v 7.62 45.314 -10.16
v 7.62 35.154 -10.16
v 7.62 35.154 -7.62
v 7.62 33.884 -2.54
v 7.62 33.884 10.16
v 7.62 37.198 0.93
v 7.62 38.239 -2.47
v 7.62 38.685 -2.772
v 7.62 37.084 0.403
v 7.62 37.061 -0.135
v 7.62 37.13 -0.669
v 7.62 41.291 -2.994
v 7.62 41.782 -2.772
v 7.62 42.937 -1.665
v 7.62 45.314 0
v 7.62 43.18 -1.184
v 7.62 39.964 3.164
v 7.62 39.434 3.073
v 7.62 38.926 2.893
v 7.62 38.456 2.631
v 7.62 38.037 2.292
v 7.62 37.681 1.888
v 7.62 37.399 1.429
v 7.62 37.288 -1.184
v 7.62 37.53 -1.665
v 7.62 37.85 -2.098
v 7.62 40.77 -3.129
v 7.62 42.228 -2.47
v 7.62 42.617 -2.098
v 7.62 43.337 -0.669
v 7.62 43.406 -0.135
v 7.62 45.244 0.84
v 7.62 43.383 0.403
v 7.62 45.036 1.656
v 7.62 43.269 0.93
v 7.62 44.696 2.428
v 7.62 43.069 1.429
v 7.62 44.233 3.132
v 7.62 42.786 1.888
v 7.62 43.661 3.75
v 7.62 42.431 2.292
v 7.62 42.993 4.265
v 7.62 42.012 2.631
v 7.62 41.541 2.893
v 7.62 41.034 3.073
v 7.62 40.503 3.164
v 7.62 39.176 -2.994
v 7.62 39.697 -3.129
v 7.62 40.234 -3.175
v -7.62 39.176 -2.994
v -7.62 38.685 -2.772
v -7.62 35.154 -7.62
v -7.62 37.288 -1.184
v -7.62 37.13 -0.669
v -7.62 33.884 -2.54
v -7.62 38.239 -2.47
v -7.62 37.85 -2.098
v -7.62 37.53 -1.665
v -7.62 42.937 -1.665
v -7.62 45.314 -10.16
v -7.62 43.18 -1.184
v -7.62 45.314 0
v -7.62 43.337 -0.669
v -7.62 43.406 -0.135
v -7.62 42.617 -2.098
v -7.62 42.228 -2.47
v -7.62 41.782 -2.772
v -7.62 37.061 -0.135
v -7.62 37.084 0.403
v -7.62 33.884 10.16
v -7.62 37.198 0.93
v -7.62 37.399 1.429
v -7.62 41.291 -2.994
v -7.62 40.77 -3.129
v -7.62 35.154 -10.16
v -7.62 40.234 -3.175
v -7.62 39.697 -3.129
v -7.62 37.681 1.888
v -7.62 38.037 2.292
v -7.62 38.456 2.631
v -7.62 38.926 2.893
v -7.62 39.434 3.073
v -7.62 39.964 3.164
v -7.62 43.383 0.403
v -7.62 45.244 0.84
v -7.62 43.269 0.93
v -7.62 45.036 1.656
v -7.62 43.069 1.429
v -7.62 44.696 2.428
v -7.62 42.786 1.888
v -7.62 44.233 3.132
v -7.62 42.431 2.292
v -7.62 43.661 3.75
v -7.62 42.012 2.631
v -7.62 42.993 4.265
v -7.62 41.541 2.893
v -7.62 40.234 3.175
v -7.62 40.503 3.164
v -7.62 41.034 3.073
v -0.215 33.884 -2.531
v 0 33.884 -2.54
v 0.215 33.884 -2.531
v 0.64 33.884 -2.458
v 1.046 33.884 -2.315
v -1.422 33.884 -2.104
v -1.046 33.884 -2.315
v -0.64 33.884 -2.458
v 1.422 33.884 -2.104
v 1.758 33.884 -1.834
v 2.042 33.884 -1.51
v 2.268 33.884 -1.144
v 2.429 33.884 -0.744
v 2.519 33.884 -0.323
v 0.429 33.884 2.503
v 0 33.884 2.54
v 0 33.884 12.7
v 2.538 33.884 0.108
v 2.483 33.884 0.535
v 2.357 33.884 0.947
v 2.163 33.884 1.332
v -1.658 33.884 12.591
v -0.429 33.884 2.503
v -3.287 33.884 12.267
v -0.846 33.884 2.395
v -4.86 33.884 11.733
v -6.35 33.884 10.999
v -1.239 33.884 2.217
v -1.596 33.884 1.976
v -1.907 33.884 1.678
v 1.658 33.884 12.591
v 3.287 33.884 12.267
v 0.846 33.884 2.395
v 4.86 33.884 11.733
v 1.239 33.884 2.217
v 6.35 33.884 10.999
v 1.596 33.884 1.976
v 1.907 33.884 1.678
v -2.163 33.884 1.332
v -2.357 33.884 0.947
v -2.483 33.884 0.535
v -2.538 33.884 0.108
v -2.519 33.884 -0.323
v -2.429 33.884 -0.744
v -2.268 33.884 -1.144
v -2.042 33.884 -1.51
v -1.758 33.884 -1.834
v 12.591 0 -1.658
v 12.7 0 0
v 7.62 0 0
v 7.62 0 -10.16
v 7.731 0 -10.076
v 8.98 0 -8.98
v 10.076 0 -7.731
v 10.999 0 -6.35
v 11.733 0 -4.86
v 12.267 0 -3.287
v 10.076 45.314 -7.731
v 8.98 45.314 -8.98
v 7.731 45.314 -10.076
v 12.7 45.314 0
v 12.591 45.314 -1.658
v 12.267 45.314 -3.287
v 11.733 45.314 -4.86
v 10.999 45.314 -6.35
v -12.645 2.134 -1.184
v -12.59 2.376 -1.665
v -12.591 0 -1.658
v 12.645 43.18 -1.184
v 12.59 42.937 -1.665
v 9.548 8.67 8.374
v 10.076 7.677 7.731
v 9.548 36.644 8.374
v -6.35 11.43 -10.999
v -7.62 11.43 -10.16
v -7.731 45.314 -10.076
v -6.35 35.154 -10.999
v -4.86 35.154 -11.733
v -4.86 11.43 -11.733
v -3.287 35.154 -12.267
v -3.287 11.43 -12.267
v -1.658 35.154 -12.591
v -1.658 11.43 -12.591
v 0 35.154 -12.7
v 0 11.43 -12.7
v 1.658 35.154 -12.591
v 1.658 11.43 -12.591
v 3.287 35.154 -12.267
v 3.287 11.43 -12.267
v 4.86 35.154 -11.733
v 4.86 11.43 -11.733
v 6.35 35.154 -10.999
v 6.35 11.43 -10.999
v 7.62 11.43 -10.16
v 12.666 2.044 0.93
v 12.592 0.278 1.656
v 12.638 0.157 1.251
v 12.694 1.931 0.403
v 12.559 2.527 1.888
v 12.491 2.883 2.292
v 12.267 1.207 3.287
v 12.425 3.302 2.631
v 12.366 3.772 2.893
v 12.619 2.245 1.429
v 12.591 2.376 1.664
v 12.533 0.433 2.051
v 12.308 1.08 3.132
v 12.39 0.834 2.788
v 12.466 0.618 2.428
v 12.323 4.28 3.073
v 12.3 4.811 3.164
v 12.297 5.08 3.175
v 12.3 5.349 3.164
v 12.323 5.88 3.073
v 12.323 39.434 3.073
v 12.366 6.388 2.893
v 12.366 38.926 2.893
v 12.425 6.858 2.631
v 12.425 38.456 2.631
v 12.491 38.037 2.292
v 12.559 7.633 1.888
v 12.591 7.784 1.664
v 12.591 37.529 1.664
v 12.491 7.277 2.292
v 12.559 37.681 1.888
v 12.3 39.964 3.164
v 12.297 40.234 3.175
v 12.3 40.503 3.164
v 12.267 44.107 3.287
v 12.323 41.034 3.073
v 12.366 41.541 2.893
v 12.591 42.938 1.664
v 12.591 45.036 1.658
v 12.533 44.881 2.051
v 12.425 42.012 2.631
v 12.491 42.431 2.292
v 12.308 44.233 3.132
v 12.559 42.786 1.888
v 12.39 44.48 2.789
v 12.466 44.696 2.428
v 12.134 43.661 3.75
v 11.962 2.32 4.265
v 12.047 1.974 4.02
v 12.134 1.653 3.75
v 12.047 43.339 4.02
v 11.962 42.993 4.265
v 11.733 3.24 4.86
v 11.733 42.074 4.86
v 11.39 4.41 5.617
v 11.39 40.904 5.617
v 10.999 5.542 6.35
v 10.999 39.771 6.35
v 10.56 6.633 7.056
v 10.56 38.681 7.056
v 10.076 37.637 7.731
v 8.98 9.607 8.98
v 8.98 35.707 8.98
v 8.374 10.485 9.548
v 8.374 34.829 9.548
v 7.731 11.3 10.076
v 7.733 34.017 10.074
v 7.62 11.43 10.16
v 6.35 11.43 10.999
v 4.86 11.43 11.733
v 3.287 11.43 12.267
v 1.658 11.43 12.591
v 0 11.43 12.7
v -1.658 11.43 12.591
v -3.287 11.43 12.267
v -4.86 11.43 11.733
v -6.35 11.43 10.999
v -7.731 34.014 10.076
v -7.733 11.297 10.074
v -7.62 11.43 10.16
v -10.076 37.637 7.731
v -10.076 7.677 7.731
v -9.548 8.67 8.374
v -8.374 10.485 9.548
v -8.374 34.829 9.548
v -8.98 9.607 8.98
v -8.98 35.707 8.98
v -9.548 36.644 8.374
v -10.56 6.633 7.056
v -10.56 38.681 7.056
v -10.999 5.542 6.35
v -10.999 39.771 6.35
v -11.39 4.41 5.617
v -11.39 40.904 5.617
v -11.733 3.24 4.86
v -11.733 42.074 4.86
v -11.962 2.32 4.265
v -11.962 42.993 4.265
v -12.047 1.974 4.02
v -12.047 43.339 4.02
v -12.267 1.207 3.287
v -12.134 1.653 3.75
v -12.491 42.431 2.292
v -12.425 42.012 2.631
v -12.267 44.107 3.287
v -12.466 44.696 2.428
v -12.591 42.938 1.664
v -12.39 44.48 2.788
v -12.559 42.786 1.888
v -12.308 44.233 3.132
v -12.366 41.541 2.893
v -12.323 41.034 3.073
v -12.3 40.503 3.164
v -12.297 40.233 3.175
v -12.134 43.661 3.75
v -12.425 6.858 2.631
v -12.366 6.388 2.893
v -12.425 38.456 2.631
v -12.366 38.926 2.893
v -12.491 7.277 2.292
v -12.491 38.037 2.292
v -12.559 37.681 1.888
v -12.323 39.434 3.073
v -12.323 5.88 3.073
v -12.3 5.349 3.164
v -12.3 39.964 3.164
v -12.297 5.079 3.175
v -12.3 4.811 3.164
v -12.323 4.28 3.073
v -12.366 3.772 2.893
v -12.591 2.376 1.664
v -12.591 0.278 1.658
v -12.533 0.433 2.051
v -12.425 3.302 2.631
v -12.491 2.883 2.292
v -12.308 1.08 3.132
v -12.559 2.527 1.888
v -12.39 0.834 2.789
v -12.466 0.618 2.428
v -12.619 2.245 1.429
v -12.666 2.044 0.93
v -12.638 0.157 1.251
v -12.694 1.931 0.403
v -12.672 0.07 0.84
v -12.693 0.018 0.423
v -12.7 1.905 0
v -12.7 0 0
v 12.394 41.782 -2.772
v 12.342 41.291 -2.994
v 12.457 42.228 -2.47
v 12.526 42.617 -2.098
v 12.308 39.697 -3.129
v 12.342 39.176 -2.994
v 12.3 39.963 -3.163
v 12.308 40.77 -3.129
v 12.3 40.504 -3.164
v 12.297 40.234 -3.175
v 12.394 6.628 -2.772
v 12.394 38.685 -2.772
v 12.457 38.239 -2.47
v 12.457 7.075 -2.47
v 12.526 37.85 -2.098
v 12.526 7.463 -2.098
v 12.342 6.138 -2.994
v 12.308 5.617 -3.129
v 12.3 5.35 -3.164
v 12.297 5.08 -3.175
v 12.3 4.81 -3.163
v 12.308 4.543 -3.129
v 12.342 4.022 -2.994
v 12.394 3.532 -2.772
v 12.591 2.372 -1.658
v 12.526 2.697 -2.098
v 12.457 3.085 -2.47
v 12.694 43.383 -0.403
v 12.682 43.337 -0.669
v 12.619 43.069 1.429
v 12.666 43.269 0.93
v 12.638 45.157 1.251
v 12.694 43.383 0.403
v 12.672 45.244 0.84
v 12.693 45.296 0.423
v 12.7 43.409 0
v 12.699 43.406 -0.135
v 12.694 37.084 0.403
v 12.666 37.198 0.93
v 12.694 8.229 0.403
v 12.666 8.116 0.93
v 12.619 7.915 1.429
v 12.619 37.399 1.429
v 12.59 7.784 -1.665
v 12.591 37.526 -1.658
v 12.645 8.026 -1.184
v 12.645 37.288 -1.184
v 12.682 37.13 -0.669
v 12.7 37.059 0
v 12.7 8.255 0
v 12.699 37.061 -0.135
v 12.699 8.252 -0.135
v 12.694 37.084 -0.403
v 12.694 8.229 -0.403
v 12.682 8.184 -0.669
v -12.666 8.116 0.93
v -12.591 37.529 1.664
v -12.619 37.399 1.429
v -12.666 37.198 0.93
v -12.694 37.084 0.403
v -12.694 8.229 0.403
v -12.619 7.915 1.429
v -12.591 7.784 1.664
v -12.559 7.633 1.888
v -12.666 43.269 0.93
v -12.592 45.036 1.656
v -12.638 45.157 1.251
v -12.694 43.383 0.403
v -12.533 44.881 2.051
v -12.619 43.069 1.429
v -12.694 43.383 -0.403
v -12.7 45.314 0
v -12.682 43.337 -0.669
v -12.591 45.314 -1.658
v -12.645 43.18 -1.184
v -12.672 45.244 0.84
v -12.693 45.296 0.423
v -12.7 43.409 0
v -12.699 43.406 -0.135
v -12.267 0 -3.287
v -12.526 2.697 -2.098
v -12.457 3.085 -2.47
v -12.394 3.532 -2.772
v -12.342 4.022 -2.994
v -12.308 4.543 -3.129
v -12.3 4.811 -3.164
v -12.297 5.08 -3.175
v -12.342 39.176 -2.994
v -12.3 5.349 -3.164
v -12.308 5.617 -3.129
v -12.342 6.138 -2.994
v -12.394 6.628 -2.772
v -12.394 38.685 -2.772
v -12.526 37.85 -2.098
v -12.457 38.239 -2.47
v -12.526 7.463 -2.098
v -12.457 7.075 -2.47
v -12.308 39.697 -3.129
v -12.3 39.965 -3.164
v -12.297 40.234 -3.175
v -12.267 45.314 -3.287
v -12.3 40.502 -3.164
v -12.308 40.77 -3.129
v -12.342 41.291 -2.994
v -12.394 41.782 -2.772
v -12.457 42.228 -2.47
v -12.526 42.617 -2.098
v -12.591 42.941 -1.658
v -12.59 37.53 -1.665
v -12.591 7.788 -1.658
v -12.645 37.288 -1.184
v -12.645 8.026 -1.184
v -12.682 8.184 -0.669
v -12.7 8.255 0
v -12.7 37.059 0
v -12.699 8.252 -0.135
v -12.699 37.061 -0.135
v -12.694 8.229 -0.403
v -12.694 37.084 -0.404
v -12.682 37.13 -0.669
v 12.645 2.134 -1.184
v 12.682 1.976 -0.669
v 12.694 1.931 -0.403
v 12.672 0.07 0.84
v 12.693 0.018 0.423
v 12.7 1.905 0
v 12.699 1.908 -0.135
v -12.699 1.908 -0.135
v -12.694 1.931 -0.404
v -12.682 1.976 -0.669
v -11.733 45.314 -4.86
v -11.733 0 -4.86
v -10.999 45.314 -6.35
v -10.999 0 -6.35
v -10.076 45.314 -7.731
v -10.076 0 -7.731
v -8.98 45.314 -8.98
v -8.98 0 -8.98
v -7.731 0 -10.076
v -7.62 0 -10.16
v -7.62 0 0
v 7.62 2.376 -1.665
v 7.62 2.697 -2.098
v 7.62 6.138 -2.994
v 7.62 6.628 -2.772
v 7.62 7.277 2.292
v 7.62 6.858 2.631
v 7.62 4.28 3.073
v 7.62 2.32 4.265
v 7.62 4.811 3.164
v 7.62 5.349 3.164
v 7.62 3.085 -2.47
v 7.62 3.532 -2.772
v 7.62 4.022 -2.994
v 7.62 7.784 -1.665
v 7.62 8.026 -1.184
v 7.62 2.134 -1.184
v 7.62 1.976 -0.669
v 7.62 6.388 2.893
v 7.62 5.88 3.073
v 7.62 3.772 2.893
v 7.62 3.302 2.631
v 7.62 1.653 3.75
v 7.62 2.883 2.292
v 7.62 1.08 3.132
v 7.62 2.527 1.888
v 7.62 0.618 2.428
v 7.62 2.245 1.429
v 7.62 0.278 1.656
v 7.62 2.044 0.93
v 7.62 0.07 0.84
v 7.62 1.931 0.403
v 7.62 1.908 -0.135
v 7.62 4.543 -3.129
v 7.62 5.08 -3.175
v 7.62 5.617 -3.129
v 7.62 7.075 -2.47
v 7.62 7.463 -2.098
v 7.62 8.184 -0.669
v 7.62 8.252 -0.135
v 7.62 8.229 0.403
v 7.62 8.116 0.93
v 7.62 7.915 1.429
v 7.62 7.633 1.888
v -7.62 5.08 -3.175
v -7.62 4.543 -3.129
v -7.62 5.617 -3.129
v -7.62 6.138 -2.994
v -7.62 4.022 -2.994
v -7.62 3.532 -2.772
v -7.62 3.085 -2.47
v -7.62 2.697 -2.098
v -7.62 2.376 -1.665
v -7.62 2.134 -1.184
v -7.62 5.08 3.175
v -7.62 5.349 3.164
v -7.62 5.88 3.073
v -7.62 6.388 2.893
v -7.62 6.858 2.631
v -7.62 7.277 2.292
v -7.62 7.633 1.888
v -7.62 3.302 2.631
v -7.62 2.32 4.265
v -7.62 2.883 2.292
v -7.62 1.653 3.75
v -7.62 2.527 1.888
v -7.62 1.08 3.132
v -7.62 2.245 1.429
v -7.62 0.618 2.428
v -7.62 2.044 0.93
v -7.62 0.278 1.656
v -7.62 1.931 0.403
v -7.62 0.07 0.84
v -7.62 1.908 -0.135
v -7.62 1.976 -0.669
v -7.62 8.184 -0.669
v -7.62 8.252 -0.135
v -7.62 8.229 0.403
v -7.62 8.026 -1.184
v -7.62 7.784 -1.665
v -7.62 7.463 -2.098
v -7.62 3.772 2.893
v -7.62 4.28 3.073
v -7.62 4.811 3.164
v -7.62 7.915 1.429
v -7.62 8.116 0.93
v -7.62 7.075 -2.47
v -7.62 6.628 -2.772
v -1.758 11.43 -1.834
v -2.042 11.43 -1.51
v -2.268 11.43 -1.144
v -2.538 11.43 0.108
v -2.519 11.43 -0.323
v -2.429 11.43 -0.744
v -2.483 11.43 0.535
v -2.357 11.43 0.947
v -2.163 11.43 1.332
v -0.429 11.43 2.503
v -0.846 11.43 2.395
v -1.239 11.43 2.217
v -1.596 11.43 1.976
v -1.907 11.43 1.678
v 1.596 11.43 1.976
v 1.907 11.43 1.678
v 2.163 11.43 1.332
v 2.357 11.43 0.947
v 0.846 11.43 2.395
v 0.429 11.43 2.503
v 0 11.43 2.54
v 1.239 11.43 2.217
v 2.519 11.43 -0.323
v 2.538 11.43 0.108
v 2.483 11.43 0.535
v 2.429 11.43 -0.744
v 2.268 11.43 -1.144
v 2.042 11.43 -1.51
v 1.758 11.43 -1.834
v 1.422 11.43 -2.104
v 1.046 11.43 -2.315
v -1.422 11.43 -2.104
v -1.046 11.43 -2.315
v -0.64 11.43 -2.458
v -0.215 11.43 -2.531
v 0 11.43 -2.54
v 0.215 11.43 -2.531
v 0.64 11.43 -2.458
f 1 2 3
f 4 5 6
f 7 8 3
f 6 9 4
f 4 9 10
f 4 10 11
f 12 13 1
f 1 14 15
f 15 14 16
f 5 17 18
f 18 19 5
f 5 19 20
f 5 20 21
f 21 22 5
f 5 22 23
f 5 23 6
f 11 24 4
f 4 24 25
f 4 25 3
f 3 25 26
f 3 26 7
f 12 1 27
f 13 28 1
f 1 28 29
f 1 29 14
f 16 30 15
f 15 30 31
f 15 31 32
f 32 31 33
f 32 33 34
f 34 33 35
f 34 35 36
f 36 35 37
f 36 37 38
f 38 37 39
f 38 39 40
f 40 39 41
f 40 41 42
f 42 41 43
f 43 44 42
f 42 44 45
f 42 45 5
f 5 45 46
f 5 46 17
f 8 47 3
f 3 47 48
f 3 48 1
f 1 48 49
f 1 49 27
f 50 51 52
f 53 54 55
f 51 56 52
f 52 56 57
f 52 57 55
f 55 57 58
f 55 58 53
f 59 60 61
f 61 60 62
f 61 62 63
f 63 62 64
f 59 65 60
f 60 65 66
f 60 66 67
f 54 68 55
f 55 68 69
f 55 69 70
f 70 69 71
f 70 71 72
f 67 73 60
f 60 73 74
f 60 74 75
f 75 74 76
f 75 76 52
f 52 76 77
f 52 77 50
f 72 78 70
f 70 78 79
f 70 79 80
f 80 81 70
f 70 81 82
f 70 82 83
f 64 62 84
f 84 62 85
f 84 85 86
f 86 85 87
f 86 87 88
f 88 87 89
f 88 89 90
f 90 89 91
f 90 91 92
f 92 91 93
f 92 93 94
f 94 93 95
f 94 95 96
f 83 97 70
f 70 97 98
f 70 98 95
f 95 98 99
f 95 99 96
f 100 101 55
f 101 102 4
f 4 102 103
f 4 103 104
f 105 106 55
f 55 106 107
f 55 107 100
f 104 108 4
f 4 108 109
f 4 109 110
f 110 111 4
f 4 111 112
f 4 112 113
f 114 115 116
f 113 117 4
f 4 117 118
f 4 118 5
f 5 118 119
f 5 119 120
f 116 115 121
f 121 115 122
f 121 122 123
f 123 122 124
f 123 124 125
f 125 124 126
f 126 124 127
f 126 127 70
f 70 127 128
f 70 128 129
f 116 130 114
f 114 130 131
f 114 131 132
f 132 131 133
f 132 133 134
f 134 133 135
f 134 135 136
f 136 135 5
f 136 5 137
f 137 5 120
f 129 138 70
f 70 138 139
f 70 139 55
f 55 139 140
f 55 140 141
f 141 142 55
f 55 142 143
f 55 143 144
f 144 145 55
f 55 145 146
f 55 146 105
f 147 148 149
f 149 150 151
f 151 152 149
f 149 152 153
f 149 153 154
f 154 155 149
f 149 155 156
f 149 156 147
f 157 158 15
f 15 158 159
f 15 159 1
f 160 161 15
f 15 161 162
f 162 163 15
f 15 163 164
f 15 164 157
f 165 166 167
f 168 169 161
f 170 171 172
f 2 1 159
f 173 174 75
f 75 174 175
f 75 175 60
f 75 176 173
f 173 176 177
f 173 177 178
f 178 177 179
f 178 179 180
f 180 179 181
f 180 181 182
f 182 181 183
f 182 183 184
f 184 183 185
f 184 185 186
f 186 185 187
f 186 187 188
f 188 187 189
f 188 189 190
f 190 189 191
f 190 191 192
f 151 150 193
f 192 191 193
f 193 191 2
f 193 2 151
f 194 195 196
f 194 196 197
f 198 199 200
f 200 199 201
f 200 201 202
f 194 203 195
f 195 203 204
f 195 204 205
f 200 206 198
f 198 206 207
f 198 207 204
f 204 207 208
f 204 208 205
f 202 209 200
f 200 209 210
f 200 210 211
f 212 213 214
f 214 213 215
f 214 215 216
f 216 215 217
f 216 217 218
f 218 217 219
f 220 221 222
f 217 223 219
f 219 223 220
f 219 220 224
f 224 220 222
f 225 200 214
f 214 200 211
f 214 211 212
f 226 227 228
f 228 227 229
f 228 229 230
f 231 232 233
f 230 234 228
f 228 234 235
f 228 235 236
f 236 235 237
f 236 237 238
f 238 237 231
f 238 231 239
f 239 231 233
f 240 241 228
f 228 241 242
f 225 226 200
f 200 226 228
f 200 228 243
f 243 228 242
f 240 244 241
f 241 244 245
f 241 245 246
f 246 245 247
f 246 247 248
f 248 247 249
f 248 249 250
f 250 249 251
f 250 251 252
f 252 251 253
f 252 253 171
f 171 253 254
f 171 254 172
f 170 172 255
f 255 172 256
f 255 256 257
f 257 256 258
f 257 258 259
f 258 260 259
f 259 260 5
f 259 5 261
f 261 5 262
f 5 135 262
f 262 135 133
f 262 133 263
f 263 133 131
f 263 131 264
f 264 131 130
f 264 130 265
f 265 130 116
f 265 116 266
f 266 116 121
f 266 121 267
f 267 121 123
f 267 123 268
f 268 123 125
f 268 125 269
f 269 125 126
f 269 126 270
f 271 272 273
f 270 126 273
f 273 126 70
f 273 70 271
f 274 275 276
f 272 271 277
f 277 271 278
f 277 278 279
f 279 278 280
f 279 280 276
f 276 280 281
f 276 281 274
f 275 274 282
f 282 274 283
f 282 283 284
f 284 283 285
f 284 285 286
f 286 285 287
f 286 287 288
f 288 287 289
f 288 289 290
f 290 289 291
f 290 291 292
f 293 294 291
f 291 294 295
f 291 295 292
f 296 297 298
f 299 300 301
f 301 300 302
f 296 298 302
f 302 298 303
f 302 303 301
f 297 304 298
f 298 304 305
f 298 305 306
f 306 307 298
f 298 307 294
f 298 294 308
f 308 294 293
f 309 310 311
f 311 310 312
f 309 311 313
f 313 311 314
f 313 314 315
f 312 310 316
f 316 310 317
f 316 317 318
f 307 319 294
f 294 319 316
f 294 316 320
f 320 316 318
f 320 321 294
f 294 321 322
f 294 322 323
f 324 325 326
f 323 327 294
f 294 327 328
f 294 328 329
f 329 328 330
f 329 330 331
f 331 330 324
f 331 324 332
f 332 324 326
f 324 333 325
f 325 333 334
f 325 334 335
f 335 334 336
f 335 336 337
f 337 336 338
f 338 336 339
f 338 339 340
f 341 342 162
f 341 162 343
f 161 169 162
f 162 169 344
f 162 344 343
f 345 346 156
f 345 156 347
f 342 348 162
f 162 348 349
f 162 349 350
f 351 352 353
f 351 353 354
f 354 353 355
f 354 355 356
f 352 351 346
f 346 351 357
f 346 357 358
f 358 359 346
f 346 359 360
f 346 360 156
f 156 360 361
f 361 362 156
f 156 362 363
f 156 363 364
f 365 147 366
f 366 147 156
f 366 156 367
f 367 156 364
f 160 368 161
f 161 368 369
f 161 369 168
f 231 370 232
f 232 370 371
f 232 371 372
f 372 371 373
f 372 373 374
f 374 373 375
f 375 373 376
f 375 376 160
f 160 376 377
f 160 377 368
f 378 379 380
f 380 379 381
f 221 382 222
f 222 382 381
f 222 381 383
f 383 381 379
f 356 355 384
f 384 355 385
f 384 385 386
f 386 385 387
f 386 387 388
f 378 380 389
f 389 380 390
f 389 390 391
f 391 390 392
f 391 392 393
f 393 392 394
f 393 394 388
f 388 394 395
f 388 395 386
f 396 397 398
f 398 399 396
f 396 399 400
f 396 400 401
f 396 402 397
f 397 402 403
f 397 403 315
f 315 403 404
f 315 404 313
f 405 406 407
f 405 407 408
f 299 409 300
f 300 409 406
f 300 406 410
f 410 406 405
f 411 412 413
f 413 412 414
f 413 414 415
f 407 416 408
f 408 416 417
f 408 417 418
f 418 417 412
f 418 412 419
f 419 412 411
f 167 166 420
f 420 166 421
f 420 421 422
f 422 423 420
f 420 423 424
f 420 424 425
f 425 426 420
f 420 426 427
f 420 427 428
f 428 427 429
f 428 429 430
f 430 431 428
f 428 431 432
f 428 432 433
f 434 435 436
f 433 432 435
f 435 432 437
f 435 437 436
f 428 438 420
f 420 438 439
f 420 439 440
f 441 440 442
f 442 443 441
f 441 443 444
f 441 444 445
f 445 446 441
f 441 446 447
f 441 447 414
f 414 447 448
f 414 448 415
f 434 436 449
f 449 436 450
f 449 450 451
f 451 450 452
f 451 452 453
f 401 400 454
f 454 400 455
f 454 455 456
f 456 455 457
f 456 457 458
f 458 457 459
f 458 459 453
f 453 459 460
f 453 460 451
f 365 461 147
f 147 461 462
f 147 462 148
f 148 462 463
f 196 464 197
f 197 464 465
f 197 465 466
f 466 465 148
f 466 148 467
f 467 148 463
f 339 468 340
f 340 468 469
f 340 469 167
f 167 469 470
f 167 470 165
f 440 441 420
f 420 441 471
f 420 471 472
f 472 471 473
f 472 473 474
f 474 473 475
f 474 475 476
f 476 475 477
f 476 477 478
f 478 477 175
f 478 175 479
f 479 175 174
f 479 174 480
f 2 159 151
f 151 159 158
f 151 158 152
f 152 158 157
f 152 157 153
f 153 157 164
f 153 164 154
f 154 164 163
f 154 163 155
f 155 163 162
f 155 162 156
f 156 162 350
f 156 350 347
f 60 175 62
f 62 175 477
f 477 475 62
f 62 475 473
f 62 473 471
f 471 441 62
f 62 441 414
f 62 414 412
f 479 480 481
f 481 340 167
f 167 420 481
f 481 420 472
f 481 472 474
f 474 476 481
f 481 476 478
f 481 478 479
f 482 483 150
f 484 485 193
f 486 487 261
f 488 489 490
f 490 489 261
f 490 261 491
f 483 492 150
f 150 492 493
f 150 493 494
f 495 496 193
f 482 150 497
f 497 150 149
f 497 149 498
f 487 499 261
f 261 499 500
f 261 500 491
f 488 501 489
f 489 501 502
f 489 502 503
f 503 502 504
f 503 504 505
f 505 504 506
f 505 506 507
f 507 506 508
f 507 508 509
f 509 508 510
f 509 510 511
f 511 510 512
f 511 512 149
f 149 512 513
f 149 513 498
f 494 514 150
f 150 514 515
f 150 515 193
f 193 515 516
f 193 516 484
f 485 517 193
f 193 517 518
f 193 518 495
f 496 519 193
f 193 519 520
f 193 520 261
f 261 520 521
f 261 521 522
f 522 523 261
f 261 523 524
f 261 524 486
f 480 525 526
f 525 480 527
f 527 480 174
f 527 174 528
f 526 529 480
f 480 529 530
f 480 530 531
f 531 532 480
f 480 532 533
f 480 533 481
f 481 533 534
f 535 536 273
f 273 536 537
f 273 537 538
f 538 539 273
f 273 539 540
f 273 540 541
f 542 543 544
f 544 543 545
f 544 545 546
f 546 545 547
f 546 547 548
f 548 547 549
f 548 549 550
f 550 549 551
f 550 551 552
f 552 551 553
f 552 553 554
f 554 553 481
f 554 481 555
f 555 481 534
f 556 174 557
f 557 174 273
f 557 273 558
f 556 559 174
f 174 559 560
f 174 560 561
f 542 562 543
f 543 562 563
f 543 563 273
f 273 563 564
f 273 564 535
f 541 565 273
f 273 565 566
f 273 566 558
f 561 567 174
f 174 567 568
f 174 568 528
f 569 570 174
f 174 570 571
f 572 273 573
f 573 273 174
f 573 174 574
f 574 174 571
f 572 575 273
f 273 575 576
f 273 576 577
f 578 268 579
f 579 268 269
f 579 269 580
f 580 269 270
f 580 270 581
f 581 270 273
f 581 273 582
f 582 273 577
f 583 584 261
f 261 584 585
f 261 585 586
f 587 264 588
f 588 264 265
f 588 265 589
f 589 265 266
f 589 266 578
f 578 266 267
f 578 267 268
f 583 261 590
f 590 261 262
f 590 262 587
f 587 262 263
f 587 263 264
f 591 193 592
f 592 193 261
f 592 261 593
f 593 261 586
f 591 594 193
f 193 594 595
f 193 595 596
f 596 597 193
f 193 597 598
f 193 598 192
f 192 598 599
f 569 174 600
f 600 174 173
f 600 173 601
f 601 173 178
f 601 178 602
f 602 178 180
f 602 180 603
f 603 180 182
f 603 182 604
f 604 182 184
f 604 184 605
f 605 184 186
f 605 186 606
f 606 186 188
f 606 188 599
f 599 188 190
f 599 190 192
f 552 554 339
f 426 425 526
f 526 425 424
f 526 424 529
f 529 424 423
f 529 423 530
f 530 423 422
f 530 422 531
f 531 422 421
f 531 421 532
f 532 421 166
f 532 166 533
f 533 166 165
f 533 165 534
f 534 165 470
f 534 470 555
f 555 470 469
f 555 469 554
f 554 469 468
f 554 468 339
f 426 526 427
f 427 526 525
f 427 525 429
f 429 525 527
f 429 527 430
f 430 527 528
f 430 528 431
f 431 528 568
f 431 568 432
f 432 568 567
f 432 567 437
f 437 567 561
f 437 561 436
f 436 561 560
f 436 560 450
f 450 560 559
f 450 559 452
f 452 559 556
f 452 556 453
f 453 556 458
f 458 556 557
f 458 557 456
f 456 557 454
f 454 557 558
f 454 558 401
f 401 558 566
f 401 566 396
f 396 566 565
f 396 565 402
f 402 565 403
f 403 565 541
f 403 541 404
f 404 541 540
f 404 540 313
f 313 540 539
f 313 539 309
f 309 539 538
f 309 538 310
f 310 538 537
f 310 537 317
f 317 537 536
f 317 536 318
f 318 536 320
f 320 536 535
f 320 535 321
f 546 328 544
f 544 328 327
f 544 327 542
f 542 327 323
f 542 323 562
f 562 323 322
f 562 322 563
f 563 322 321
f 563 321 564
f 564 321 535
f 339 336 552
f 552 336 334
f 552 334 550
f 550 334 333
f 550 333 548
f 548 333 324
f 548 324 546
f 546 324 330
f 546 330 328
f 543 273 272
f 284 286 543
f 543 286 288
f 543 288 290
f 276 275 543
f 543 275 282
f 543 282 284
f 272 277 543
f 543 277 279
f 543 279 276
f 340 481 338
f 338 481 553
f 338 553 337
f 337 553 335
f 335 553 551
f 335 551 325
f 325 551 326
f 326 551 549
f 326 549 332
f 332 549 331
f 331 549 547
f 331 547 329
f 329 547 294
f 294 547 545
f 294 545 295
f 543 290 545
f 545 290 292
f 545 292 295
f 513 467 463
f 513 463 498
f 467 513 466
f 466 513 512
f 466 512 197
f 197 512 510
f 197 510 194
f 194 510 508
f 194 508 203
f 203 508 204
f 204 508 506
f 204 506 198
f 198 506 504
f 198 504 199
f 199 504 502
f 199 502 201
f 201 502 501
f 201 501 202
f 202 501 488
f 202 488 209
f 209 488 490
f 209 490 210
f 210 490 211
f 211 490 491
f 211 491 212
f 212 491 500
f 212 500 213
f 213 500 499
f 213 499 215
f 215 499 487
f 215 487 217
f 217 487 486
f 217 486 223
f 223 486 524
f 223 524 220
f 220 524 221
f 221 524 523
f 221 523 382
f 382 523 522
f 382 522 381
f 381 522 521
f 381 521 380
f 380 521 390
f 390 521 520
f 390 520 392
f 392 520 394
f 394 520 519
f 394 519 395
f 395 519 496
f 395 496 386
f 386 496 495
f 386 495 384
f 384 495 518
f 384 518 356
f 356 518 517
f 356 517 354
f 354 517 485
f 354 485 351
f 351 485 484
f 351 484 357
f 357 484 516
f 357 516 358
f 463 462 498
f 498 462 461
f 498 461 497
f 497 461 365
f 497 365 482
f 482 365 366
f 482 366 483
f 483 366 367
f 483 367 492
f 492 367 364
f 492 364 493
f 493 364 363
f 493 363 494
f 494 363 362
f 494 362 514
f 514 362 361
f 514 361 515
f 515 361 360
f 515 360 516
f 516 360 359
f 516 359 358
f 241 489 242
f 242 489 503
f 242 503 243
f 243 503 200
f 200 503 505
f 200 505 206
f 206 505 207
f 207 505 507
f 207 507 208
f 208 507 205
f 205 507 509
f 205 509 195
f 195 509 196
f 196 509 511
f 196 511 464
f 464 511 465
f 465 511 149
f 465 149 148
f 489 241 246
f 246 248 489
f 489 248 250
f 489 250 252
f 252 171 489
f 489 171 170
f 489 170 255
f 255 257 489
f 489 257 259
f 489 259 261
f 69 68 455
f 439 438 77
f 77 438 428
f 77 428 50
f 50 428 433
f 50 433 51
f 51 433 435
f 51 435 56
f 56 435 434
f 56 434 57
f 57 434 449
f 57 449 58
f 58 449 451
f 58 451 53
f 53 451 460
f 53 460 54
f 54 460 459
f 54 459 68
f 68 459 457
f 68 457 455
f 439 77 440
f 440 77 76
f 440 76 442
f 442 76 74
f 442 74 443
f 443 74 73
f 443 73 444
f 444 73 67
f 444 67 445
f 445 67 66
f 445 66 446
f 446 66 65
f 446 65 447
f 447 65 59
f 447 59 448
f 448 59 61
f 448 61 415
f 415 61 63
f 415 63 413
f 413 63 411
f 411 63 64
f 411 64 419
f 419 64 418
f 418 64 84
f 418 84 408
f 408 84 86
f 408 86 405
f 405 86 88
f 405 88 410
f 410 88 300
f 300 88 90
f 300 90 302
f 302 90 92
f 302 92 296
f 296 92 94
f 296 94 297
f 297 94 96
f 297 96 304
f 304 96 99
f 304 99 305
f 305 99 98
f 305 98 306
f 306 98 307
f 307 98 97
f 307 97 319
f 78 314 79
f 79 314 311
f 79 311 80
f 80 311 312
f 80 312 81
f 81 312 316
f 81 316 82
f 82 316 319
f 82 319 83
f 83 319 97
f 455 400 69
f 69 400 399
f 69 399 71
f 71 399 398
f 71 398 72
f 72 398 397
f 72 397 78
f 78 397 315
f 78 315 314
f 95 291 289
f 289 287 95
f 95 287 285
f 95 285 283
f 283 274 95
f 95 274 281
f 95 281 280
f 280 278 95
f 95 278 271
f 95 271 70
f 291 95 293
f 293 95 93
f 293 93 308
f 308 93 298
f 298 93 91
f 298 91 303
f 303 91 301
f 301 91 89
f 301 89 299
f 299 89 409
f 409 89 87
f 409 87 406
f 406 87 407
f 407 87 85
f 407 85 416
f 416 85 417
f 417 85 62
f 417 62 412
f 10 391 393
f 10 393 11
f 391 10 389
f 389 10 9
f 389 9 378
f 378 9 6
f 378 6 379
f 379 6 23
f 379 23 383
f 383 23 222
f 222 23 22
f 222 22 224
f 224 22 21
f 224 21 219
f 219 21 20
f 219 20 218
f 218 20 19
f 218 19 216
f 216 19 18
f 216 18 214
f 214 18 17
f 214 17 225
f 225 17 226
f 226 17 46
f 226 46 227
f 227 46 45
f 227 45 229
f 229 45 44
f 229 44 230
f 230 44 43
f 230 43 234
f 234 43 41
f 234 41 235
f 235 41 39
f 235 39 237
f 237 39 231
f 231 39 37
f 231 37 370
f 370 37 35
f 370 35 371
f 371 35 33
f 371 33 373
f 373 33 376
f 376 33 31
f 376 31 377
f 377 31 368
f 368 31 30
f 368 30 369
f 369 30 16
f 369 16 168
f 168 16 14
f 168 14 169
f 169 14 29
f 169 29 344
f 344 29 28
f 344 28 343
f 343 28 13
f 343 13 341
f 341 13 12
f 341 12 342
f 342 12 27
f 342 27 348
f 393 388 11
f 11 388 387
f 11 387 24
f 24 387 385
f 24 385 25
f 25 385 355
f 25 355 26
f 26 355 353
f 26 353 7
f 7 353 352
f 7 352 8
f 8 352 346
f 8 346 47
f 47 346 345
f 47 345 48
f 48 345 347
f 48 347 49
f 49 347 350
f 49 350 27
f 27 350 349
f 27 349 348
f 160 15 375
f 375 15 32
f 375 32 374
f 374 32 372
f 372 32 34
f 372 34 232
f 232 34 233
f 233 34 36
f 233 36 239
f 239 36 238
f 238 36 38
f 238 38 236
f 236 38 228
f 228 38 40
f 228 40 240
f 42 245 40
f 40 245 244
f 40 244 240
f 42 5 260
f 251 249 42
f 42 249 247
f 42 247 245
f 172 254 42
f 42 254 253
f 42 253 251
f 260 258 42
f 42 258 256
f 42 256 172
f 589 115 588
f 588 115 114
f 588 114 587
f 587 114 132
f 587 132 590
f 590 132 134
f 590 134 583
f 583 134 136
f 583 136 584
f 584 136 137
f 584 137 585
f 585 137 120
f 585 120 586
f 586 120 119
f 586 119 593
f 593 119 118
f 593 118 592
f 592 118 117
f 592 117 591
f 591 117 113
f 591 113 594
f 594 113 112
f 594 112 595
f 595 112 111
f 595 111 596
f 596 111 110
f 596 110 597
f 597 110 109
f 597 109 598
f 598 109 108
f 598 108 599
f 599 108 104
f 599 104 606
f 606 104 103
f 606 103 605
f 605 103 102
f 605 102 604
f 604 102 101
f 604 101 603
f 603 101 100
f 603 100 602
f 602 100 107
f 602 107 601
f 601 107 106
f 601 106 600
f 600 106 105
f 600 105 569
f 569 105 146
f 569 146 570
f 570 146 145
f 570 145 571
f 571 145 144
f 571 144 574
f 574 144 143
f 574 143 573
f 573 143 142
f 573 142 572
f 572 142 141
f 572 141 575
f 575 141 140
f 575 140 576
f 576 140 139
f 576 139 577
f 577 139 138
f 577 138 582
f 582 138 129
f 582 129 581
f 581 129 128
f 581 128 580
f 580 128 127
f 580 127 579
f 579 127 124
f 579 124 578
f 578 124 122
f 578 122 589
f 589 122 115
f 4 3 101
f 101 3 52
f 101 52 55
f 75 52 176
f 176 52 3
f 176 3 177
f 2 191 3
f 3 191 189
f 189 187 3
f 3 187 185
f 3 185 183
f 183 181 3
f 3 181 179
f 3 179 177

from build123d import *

# Parameters (mm, degrees)
SKETCH1_R               = 12.7
BOSS_EXTRUDE1_DEPTH     = 45.3136
CUT_EXTRUDE1_START      = -11.43
CUT_EXTRUDE1_DEPTH      = 11.43
CUT_EXTRUDE2_DEPTH      = 11.43
CUT_EXTRUDE3_DEPTH      = 52.259289353
CUT_EXTRUDE3_DEPTH_BACK = 52.259289353
SKETCH4_R               = 3.175
SKETCH5_R               = 2.54
CUT_EXTRUDE4_DEPTH      = 39.349424517
BOSS_EXTRUDE2_REACH     = 53.259
BOSS_EXTRUDE3_DEPTH     = 1.27


with BuildPart() as part:
    # Sketch1 → Boss-Extrude1 (new body)
    with BuildSketch(Plane(origin=(0, 0, 0), x_dir=(1, 0, 0), z_dir=(0, 1, 0))):
        with Locations(Location((0, 0, 0), (0, 0, 90))):
            Circle(SKETCH1_R)
    extrude(amount=BOSS_EXTRUDE1_DEPTH)

    # Sketch2 → Cut-Extrude1 (cut)
    with BuildSketch(Plane(origin=(0, 45.3136, 0), x_dir=(1, 0, 0), z_dir=(0, 1, 0)).offset(CUT_EXTRUDE1_START)):
        with BuildLine():
            Line((7.62, 10.16), (7.62, -10.16))
            ThreePointArc((7.62, -10.16), (0, -12.7), (-7.62, -10.16))
            Line((-7.62, -10.16), (-7.62, 10.16))
            ThreePointArc((-7.62, 10.16), (0, 12.7), (7.62, 10.16))
        make_face()
    extrude(amount=CUT_EXTRUDE1_DEPTH, mode=Mode.SUBTRACT)

    # Sketch3 → Cut-Extrude2 (cut)
    with BuildSketch(Plane.XZ):
        with BuildLine():
            Line((-7.62, 10.16), (-7.62, -10.16))
            ThreePointArc((-7.62, -10.16), (0, -12.7), (7.62, -10.16))
            Line((7.62, -10.16), (7.62, 10.16))
            ThreePointArc((7.62, 10.16), (0, 12.7), (-7.62, 10.16))
        make_face()
    extrude(amount=-CUT_EXTRUDE2_DEPTH, mode=Mode.SUBTRACT)

    # Sketch4 → Cut-Extrude3 (cut, two sides: drawn at the far end of the back side and taken through both)
    with BuildSketch(Plane(origin=(-7.62, 0, 0), x_dir=(0, 0, -1), z_dir=(1, 0, 0)).offset(-CUT_EXTRUDE3_DEPTH_BACK)):
        with Locations(Location((0, 40.2336, 0), (0, 0, 270))):
            Circle(SKETCH4_R)
        with Locations(Location((0, 5.08, 0), (0, 0, 270))):
            Circle(SKETCH4_R)
        with BuildLine():
            Line((0, 45.3136), (-10.16, 45.3136))
            Line((-10.16, 45.3136), (-10.16, 33.8836))
            Line((-10.16, 33.8836), (-4.264917923, 42.993468677))
            ThreePointArc((-4.264917923, 42.993468677), (-2.427577715, 44.696028312), (0, 45.3136))
        make_face()
        with BuildLine():
            Line((-10.16, 11.43), (-10.16, 0))
            Line((-10.16, 0), (0, 0))
            ThreePointArc((0, 0), (-2.427577715, 0.617571688), (-4.264917923, 2.320131323))
            Line((-4.264917923, 2.320131323), (-10.16, 11.43))
        make_face()
    extrude(amount=CUT_EXTRUDE3_DEPTH + CUT_EXTRUDE3_DEPTH_BACK, mode=Mode.SUBTRACT)

    # Sketch5 → Cut-Extrude4 (cut, through all)
    with BuildSketch(Plane(origin=(0, 33.8836, 0), x_dir=(1, 0, 0), z_dir=(0, 1, 0))):
        with Locations(Location((0, 0, 0), (0, 0, 270))):
            Circle(SKETCH5_R)
    extrude(amount=-CUT_EXTRUDE4_DEPTH, mode=Mode.SUBTRACT)

    # Boss-Extrude2: up to this face of the body (flat: up to its plane)
    boss_extrude2_end = Plane(part.part.faces().sort_by_distance((7.62, 34.116741009, 0))[0])
    # Sketch6 → Boss-Extrude2 (add, up to the picked face)
    with BuildSketch(Plane(origin=(-7.62, 0, 0), x_dir=(0, 0, -1), z_dir=(1, 0, 0)), mode=Mode.PRIVATE) as boss_extrude2_sk1:
        Polygon((2.54, 33.8836), (10.16, 33.8836), (10.16, 35.1536), (7.62, 35.1536), align=None)
    boss_extrude2_tool1 = split(extrude(boss_extrude2_sk1.sketch, amount=BOSS_EXTRUDE2_REACH, mode=Mode.PRIVATE), bisect_by=boss_extrude2_end, keep=Keep.BOTH, mode=Mode.PRIVATE)
    add(boss_extrude2_tool1.solids().sort_by(Axis((-7.62, 34.412767, -7.408333), (1, 0, 0)))[0])

    # Sketch7 → Boss-Extrude3 (add)
    with BuildSketch(Plane(origin=(0, 33.8836, 0), x_dir=(1, 0, 0), z_dir=(0, 1, 0))):
        with BuildLine():
            Line((-7.62, 10.16), (7.62, 10.16))
            ThreePointArc((7.62, 10.16), (0, 12.7), (-7.62, 10.16))
        make_face()
    extrude(amount=BOSS_EXTRUDE3_DEPTH)


solid = part.part
